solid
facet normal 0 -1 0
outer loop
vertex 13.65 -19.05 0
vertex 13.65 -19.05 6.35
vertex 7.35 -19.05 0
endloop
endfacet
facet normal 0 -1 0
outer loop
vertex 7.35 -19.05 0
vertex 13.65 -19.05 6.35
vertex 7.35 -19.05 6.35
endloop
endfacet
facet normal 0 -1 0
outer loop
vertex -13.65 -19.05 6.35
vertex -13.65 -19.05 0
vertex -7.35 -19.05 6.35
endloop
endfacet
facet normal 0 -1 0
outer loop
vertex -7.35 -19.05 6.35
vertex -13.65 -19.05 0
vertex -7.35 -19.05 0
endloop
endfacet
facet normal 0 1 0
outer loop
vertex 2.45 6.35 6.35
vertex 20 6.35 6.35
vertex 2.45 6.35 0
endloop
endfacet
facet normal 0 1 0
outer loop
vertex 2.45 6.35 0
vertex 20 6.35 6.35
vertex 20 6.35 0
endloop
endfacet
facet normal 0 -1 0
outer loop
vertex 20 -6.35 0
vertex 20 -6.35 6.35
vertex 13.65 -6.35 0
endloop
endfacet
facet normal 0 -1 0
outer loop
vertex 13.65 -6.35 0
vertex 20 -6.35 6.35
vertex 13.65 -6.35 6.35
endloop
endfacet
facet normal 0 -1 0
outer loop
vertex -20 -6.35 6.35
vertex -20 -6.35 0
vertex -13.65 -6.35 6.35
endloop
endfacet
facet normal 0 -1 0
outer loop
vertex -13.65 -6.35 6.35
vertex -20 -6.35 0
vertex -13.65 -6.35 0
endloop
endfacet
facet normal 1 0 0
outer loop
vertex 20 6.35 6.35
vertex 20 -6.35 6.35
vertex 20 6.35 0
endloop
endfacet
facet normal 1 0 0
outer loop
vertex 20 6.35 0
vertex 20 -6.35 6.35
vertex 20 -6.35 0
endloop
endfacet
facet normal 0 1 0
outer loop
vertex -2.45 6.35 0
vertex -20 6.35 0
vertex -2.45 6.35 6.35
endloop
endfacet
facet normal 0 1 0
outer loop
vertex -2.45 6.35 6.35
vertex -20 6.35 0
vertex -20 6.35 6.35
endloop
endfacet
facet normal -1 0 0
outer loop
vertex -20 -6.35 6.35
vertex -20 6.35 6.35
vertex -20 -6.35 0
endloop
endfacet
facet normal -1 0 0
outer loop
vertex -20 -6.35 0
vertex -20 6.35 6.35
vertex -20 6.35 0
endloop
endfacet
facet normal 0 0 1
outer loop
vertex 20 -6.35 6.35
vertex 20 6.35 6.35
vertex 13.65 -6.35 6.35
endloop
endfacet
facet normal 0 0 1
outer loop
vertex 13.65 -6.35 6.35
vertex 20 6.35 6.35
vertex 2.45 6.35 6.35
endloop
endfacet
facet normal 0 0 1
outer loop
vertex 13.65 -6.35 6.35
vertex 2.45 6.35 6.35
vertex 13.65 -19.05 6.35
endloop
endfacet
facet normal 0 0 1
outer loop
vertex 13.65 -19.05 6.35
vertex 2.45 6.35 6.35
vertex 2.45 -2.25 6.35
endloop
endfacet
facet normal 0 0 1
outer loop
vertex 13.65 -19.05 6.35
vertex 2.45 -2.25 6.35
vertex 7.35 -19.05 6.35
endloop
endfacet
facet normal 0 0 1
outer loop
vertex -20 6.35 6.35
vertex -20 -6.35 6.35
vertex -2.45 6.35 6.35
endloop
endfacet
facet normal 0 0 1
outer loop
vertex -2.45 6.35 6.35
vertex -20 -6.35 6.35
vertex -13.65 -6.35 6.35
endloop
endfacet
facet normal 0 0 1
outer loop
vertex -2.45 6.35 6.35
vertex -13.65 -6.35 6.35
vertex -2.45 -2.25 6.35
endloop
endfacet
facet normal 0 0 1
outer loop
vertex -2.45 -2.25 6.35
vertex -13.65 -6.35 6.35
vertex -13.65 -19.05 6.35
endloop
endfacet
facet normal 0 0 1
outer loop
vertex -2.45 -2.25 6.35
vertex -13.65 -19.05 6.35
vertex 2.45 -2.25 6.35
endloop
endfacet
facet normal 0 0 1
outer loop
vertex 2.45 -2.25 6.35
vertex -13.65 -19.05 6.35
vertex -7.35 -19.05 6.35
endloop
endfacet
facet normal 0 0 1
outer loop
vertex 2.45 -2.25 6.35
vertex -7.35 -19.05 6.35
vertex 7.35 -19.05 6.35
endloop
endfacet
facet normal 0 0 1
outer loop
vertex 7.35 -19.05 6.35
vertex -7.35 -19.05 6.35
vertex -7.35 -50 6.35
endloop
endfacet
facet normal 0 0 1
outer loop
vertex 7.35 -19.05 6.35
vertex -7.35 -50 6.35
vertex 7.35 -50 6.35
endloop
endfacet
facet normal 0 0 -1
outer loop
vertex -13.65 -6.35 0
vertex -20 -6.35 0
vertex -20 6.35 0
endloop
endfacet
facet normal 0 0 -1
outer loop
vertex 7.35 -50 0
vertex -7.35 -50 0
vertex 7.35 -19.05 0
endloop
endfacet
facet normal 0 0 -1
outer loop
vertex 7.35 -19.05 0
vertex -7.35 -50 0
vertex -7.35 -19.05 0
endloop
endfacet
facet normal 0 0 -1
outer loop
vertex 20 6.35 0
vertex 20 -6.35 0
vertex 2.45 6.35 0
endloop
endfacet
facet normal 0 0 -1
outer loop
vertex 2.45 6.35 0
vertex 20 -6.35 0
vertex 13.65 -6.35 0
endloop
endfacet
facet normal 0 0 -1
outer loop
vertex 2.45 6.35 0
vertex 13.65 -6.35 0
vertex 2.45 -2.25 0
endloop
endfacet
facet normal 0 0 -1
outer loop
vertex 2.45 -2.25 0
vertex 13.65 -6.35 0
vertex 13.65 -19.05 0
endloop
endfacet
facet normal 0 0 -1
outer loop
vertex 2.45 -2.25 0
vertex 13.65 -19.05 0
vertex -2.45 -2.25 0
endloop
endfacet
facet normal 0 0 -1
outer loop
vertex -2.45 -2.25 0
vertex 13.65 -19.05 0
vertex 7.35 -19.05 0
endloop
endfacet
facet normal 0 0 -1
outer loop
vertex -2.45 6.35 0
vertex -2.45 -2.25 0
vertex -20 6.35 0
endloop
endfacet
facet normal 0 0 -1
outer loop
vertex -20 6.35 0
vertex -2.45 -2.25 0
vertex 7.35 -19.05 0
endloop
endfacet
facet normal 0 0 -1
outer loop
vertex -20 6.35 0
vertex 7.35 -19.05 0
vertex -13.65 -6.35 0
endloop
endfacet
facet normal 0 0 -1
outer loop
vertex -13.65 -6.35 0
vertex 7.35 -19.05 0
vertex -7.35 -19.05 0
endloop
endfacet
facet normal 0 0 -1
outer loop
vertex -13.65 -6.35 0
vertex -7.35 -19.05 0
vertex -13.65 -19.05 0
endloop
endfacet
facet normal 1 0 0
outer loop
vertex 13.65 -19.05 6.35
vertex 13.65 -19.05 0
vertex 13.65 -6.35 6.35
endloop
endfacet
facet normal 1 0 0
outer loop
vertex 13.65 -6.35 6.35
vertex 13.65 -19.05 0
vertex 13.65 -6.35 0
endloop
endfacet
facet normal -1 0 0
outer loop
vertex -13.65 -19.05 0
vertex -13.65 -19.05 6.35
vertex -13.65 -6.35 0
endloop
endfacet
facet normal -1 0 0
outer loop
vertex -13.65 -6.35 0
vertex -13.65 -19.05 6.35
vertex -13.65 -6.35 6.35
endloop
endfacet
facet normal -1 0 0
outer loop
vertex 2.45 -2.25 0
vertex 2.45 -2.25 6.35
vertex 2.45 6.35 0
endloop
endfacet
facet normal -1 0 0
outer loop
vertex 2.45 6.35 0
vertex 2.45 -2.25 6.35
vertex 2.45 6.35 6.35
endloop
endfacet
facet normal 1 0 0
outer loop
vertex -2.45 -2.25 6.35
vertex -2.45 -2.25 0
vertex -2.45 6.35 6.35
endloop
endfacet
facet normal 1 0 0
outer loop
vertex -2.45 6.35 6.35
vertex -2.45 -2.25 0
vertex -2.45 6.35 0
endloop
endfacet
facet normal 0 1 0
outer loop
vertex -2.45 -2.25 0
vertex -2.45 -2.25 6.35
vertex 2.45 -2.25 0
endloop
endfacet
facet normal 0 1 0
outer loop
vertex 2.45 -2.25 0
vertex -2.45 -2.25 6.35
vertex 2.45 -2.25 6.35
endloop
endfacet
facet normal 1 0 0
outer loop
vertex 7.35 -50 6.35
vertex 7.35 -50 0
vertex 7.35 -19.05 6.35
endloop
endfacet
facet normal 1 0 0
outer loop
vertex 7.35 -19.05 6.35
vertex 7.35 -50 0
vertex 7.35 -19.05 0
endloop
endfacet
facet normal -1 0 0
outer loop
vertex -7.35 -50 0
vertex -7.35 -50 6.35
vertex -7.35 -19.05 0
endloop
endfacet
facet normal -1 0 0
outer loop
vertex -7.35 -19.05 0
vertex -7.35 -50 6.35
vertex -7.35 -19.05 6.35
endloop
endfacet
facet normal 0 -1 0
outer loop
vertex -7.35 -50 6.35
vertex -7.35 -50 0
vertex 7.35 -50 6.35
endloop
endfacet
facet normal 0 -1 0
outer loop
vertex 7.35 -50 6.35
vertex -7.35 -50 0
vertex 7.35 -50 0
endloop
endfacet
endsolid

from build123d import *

# Parameters (mm, degrees)
SKETCH2_W           = 40
SKETCH2_H           = 12.7
BOSS_EXTRUDE1_DEPTH = 6.35
SKETCH3_W           = 27.3
SKETCH3_H           = 6.35
BOSS_EXTRUDE2_DEPTH = 12.7
SKETCH4_W           = 4.9
SKETCH4_H           = 6.35
CUT_EXTRUDE1_DEPTH  = 8.6
SKETCH5_W           = 14.7
SKETCH5_H           = 6.35
BOSS_EXTRUDE3_DEPTH = 30.95


with BuildPart() as part:
    # Sketch2 → Boss-Extrude1 (new body)
    with BuildSketch(Plane.XY):
        Rectangle(SKETCH2_W, SKETCH2_H)
    extrude(amount=BOSS_EXTRUDE1_DEPTH)

    # Sketch3 → Boss-Extrude2 (add)
    with BuildSketch(Plane.XZ.offset(6.35)):
        with Locations((0, 3.175)):
            Rectangle(SKETCH3_W, SKETCH3_H)
    extrude(amount=BOSS_EXTRUDE2_DEPTH)

    # Sketch4 → Cut-Extrude1 (cut)
    with BuildSketch(Plane(origin=(0, 6.35, 0), x_dir=(1, 0, 0), z_dir=(0, 1, 0))):
        with Locations((0, -3.175)):
            Rectangle(SKETCH4_W, SKETCH4_H)
    extrude(amount=-CUT_EXTRUDE1_DEPTH, mode=Mode.SUBTRACT)

    # Sketch5 → Boss-Extrude3 (add)
    with BuildSketch(Plane.XZ.offset(19.05)):
        with Locations((0, 3.175)):
            Rectangle(SKETCH5_W, SKETCH5_H)
    extrude(amount=BOSS_EXTRUDE3_DEPTH)


solid = part.part
